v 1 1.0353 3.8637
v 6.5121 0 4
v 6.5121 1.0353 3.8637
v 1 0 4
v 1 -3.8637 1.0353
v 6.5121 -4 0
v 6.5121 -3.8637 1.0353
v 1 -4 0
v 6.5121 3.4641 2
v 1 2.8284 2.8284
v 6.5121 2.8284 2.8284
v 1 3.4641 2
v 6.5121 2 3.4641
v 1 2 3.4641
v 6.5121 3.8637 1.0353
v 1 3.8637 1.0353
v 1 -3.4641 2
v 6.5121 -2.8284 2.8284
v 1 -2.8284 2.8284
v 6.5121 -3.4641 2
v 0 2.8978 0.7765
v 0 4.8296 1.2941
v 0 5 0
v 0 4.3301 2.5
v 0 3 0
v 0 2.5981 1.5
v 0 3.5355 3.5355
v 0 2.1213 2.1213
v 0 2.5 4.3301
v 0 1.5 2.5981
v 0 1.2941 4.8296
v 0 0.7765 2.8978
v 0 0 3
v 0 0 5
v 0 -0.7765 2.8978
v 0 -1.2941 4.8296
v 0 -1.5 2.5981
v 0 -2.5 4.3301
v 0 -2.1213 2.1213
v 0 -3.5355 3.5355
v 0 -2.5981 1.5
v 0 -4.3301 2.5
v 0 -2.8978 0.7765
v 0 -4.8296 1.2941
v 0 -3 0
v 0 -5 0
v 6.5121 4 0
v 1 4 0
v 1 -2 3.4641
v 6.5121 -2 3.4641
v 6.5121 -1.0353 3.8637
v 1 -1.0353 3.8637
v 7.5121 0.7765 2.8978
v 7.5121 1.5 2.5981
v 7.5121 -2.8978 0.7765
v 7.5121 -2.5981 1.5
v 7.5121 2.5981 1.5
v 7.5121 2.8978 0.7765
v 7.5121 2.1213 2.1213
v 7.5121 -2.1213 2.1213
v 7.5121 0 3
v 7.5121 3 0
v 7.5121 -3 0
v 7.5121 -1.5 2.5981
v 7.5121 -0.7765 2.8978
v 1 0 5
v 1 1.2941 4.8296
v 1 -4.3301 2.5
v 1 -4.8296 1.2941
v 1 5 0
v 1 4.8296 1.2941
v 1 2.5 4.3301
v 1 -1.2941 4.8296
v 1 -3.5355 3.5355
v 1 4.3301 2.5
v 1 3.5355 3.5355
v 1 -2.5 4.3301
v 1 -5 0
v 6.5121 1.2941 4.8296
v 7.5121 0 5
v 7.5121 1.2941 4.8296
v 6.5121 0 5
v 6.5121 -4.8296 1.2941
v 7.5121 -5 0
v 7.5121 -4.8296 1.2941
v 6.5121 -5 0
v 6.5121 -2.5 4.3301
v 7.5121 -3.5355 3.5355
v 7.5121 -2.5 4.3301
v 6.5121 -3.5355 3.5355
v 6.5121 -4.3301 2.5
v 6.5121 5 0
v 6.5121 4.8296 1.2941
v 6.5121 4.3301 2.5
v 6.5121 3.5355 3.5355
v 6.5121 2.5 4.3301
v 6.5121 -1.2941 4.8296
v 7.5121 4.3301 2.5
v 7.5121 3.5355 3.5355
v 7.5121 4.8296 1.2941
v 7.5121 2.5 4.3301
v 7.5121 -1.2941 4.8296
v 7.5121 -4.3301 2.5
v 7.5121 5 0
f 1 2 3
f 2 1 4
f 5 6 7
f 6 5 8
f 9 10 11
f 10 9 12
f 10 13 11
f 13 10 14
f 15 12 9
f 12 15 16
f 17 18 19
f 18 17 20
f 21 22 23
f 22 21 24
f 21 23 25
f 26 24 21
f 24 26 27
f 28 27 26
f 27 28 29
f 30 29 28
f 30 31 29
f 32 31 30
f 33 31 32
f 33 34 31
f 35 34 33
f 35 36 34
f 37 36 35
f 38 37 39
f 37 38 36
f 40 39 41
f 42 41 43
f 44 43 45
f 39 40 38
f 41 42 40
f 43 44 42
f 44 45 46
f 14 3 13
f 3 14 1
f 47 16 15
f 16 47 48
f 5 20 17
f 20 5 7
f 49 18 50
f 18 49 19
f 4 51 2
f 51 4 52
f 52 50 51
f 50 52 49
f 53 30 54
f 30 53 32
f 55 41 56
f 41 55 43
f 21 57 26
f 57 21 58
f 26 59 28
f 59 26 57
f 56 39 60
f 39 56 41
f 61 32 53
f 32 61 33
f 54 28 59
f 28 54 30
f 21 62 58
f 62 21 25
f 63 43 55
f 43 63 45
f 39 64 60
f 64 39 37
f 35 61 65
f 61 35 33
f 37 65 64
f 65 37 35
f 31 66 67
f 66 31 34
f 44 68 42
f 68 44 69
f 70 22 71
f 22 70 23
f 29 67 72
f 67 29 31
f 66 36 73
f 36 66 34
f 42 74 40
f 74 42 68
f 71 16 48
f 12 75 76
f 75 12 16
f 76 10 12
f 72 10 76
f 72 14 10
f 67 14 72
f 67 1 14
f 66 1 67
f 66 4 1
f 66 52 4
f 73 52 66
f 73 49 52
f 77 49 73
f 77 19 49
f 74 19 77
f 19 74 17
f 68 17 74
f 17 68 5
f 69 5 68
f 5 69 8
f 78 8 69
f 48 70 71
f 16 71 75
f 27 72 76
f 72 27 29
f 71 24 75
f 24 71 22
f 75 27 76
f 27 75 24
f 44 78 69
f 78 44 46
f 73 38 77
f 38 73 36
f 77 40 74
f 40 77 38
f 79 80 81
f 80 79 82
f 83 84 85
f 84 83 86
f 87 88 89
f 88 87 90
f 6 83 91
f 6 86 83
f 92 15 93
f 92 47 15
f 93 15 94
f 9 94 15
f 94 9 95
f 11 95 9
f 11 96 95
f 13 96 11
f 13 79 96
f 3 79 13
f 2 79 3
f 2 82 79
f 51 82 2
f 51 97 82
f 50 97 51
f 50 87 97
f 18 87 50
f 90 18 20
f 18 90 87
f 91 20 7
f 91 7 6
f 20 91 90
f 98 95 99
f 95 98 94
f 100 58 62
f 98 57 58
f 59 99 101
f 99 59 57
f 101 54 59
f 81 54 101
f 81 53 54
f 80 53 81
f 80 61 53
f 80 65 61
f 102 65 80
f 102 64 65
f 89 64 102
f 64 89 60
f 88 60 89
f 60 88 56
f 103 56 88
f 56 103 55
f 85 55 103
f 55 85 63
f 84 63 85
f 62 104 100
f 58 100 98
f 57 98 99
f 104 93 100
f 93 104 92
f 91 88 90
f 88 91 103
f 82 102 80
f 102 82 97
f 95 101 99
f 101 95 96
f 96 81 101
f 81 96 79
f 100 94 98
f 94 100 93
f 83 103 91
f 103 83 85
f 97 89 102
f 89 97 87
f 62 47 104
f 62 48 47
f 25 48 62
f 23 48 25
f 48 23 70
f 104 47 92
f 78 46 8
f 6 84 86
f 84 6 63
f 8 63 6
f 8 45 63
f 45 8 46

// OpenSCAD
// file: ../build_environments.scad
// build_environments.scad: modules to build level sections
//

module pool(diameter=10.0, wall_height=2.0, step_width=3.0, connections=[])
{
    difference() {
        union() {
        difference() {
            cylinder(h=0.5,r1=diameter+step_width,r2=diameter+step_width,$fn=48);
            translate([0,0,-0.1])
                cylinder(h=0.7,r1=diameter,r2=diameter,$fn=48);
        }
        difference() {
            cylinder(h=wall_height,r1=diameter+step_width+1.0,r2=diameter+step_width+1.0,$fn=48);
            translate([0,0,-0.1])
                cylinder(h=wall_height+0.2,r1=diameter+step_width,r2=diameter+step_width,$fn=48);
        }
        }
    
        for (c = connections)
        {
            rotate([0,90,0]) {
                angle = atan2(c[1],c[0]);
                rotate([-angle,0,0]) {
                    cylinder(h=diameter+5.0,r1=c[2],r2=c[2],$fn=48);
                }
            }
        }
    }
}

module straight(length=10.0, width=2.0, dy1=0.0, dy2=0.0, dz=0.0)
{
    dims = [0, 0, 0, 0, 0, (dz/length)];
    matrix = [
        [ 1, dims[0], dims[1], 0 ],
        [ dims[2], 1, dims[4], 0 ],
        [ dims[5], dims[3], 1, 0 ],
        [ 0, 0, 0, 1 ]
    ];
    multmatrix(matrix)
    difference() {
        translate([dy1,0,0])
        union() {
            rotate([0,90,0]) {
                difference() {
                    cylinder(h=(length-dy1-dy2),r1=width+1.0,r2=width+1.0,$fn=24);
                    translate([0,0,-0.1])
                        cylinder(h=(length-dy1-dy2+0.2),r1=width,r2=width,$fn=24);
                }
                difference() {
                    cylinder(h=1.0,r1=width+2.0,r2=width+2.0,$fn=24);
                    translate([0,0,-0.1])
                        cylinder(h=1.2,r1=width,r2=width,$fn=24);
                }
                translate([0,0,(length-dy1-dy2)-1.0]) {
                    difference() {
                        cylinder(h=1.0,r1=width+2.0,r2=width+2.0,$fn=24);
                        translate([0,0,-0.1])
                            cylinder(h=1.2,r1=width,r2=width,$fn=24);
                    }
                }
            }
        }
        translate([0,0,-(2*width+4.0)/2])
            cube([3*length,3*length,2*width+4.0],center=true);
    }
}

module curve(p0=[0,0], center=[0,0], dir=1, angle=0.0, width=2.0)
{
    radius = sqrt((p0[0]-center[0])*(p0[0]-center[0]) + (p0[1]-center[1])*(p0[1]-center[1]));
    if (dir == 0) {
        difference() {
            rotate([0,0,-90])
            difference() {
                rotate_extrude(angle = angle, convexity = 10, $fn=32)
                    translate([radius, 0, 0])
                        circle(r = width+1.0,$fn=24);
                rotate([0,0,-1.0])
                    rotate_extrude(angle = angle+2.0, convexity = 10, $fn=32)
                        translate([radius, 0, 0])
                            circle(r = width,$fn=24);
            }
            translate([0,0,-(2*width+4.0)/2])
                cube([5*radius,5*radius,2*width+4.0],center=true);
        }
    }
    else {
        difference() {
            rotate([0,0,90])
            difference() {
                rotate_extrude(angle = -angle, convexity = 10, $fn=32)
                    translate([radius, 0, 0])
                        circle(r = width+1.0,$fn=24);
                rotate([0,0,1.0])
                    rotate_extrude(angle = -angle-2.0, convexity = 10, $fn=32)
                        translate([radius, 0, 0])
                            circle(r = width,$fn=24);
            }
            translate([0,0,-(2*width+4.0)/2])
                cube([5*radius,5*radius,2*width+4.0],center=true);
        }
    }

}

// test pool
//pool(diameter=12.0000, wall_height=3.0000, step_width=3.0000, connections=[[0.0000,-26.0000,2.0000], [23.6074,0.0000,2.0000]]);

// test straight, slope
//straight(length=26.0000, width=2.0000, dy1=11.8322, dy2=6.7082, dz=0.0000);
//straight(length=29.1549, width=12.0000, dy1=0.0000, dy2=0.0000, dz=-15.0000);

// test curve
//curve(p0=[23.6074, 0.0000], center=[23.6074, 5.0000], dir=0, angle=60.1011, width=2.0000);
//curve(p0=[33.6426, 12.4219], center=[37.9771, 9.9295], dir=1, angle=120.4627, width=2.0000);
// main file
use <../build_environments.scad>;
straight(length=7.5121, width=3.0000, dy1=0.0000, dy2=0.0000, dz=0.0000);
